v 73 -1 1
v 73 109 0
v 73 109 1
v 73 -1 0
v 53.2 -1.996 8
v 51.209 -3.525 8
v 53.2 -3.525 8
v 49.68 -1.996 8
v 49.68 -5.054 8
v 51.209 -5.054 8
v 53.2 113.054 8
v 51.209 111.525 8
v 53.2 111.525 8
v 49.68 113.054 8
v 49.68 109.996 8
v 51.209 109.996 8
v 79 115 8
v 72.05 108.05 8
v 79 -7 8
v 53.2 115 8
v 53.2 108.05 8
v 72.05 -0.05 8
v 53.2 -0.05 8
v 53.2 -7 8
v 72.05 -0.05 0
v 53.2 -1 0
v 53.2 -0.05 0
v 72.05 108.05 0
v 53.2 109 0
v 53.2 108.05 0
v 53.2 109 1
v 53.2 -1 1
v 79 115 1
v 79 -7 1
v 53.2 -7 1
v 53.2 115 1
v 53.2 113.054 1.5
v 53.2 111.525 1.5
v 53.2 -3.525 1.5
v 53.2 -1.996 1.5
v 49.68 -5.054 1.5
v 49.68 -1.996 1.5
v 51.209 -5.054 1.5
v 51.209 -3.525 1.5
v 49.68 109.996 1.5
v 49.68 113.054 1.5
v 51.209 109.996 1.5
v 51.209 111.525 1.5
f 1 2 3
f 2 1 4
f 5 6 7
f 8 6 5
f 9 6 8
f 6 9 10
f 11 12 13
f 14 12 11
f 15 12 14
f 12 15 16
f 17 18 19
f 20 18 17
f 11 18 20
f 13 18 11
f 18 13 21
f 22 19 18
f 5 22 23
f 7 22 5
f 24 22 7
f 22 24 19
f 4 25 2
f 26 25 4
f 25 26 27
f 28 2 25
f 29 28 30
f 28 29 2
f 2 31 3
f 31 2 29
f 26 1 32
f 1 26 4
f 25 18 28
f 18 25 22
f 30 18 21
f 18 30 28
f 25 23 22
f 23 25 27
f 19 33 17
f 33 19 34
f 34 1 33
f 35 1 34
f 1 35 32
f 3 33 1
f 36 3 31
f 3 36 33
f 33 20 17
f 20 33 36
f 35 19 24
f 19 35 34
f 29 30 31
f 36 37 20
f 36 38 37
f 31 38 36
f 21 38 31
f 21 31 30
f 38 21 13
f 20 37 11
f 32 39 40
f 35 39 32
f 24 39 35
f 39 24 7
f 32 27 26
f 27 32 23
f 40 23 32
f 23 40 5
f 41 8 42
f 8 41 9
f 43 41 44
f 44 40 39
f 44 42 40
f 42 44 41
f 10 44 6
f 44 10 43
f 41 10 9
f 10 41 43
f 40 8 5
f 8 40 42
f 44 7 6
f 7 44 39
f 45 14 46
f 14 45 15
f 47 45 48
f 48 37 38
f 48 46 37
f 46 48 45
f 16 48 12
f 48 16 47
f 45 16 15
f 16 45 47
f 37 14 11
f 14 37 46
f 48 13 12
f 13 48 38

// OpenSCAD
// Generated by SolidPython 1.0.4 on 2021-01-19 16:05:13


union() {
	union() {
		difference() {
			union() {
				difference() {
					translate(v = [-1.0000000000, -1.0000000000, 0]) {
						cube(size = [74.0000000000, 110.0000000000, 8]);
					}
					translate(v = [-0.0500000000, -0.0500000000, 0]) {
						cube(size = [72.1000000000, 108.1000000000, 8]);
					}
				}
				translate(v = [0, 0, 1]) {
					difference() {
						translate(v = [-7.0000000000, -7.0000000000, 0]) {
							cube(size = [86.0000000000, 122.0000000000, 7]);
						}
						translate(v = [-1.0000000000, -1.0000000000, 0]) {
							cube(size = [74.0000000000, 110.0000000000, 7]);
						}
					}
				}
			}
			translate(v = [-7.0000000000, -7.0000000000, 0]) {
				cube(size = [60.2000000000, 122.0000000000, 8]);
			}
		}
		translate(v = [49.2000000000, -5.0540000000, 0]) {
			translate(v = [0.4800000000, 0, 1.5000000000]) {
				scale(v = [0.8800000000, 0.8800000000, 1]) {
					translate(v = [4, 3.4750000000, 0]) {
						rotate(a = -180) {
							union() {
								translate(v = [2.2625000000, 0, 0]) {
									cube(size = [1.7375000000, 3.4750000000, 6.5000000000]);
								}
								cube(size = [4, 1.7375000000, 6.5000000000]);
							}
						}
					}
				}
			}
		}
	}
	translate(v = [49.2000000000, 109.9960000000, 0]) {
		translate(v = [0.4800000000, 0, 1.5000000000]) {
			scale(v = [0.8800000000, 0.8800000000, 1]) {
				translate(v = [4, 3.4750000000, 0]) {
					rotate(a = -180) {
						union() {
							translate(v = [2.2625000000, 0, 0]) {
								cube(size = [1.7375000000, 3.4750000000, 6.5000000000]);
							}
							cube(size = [4, 1.7375000000, 6.5000000000]);
						}
					}
				}
			}
		}
	}
}
